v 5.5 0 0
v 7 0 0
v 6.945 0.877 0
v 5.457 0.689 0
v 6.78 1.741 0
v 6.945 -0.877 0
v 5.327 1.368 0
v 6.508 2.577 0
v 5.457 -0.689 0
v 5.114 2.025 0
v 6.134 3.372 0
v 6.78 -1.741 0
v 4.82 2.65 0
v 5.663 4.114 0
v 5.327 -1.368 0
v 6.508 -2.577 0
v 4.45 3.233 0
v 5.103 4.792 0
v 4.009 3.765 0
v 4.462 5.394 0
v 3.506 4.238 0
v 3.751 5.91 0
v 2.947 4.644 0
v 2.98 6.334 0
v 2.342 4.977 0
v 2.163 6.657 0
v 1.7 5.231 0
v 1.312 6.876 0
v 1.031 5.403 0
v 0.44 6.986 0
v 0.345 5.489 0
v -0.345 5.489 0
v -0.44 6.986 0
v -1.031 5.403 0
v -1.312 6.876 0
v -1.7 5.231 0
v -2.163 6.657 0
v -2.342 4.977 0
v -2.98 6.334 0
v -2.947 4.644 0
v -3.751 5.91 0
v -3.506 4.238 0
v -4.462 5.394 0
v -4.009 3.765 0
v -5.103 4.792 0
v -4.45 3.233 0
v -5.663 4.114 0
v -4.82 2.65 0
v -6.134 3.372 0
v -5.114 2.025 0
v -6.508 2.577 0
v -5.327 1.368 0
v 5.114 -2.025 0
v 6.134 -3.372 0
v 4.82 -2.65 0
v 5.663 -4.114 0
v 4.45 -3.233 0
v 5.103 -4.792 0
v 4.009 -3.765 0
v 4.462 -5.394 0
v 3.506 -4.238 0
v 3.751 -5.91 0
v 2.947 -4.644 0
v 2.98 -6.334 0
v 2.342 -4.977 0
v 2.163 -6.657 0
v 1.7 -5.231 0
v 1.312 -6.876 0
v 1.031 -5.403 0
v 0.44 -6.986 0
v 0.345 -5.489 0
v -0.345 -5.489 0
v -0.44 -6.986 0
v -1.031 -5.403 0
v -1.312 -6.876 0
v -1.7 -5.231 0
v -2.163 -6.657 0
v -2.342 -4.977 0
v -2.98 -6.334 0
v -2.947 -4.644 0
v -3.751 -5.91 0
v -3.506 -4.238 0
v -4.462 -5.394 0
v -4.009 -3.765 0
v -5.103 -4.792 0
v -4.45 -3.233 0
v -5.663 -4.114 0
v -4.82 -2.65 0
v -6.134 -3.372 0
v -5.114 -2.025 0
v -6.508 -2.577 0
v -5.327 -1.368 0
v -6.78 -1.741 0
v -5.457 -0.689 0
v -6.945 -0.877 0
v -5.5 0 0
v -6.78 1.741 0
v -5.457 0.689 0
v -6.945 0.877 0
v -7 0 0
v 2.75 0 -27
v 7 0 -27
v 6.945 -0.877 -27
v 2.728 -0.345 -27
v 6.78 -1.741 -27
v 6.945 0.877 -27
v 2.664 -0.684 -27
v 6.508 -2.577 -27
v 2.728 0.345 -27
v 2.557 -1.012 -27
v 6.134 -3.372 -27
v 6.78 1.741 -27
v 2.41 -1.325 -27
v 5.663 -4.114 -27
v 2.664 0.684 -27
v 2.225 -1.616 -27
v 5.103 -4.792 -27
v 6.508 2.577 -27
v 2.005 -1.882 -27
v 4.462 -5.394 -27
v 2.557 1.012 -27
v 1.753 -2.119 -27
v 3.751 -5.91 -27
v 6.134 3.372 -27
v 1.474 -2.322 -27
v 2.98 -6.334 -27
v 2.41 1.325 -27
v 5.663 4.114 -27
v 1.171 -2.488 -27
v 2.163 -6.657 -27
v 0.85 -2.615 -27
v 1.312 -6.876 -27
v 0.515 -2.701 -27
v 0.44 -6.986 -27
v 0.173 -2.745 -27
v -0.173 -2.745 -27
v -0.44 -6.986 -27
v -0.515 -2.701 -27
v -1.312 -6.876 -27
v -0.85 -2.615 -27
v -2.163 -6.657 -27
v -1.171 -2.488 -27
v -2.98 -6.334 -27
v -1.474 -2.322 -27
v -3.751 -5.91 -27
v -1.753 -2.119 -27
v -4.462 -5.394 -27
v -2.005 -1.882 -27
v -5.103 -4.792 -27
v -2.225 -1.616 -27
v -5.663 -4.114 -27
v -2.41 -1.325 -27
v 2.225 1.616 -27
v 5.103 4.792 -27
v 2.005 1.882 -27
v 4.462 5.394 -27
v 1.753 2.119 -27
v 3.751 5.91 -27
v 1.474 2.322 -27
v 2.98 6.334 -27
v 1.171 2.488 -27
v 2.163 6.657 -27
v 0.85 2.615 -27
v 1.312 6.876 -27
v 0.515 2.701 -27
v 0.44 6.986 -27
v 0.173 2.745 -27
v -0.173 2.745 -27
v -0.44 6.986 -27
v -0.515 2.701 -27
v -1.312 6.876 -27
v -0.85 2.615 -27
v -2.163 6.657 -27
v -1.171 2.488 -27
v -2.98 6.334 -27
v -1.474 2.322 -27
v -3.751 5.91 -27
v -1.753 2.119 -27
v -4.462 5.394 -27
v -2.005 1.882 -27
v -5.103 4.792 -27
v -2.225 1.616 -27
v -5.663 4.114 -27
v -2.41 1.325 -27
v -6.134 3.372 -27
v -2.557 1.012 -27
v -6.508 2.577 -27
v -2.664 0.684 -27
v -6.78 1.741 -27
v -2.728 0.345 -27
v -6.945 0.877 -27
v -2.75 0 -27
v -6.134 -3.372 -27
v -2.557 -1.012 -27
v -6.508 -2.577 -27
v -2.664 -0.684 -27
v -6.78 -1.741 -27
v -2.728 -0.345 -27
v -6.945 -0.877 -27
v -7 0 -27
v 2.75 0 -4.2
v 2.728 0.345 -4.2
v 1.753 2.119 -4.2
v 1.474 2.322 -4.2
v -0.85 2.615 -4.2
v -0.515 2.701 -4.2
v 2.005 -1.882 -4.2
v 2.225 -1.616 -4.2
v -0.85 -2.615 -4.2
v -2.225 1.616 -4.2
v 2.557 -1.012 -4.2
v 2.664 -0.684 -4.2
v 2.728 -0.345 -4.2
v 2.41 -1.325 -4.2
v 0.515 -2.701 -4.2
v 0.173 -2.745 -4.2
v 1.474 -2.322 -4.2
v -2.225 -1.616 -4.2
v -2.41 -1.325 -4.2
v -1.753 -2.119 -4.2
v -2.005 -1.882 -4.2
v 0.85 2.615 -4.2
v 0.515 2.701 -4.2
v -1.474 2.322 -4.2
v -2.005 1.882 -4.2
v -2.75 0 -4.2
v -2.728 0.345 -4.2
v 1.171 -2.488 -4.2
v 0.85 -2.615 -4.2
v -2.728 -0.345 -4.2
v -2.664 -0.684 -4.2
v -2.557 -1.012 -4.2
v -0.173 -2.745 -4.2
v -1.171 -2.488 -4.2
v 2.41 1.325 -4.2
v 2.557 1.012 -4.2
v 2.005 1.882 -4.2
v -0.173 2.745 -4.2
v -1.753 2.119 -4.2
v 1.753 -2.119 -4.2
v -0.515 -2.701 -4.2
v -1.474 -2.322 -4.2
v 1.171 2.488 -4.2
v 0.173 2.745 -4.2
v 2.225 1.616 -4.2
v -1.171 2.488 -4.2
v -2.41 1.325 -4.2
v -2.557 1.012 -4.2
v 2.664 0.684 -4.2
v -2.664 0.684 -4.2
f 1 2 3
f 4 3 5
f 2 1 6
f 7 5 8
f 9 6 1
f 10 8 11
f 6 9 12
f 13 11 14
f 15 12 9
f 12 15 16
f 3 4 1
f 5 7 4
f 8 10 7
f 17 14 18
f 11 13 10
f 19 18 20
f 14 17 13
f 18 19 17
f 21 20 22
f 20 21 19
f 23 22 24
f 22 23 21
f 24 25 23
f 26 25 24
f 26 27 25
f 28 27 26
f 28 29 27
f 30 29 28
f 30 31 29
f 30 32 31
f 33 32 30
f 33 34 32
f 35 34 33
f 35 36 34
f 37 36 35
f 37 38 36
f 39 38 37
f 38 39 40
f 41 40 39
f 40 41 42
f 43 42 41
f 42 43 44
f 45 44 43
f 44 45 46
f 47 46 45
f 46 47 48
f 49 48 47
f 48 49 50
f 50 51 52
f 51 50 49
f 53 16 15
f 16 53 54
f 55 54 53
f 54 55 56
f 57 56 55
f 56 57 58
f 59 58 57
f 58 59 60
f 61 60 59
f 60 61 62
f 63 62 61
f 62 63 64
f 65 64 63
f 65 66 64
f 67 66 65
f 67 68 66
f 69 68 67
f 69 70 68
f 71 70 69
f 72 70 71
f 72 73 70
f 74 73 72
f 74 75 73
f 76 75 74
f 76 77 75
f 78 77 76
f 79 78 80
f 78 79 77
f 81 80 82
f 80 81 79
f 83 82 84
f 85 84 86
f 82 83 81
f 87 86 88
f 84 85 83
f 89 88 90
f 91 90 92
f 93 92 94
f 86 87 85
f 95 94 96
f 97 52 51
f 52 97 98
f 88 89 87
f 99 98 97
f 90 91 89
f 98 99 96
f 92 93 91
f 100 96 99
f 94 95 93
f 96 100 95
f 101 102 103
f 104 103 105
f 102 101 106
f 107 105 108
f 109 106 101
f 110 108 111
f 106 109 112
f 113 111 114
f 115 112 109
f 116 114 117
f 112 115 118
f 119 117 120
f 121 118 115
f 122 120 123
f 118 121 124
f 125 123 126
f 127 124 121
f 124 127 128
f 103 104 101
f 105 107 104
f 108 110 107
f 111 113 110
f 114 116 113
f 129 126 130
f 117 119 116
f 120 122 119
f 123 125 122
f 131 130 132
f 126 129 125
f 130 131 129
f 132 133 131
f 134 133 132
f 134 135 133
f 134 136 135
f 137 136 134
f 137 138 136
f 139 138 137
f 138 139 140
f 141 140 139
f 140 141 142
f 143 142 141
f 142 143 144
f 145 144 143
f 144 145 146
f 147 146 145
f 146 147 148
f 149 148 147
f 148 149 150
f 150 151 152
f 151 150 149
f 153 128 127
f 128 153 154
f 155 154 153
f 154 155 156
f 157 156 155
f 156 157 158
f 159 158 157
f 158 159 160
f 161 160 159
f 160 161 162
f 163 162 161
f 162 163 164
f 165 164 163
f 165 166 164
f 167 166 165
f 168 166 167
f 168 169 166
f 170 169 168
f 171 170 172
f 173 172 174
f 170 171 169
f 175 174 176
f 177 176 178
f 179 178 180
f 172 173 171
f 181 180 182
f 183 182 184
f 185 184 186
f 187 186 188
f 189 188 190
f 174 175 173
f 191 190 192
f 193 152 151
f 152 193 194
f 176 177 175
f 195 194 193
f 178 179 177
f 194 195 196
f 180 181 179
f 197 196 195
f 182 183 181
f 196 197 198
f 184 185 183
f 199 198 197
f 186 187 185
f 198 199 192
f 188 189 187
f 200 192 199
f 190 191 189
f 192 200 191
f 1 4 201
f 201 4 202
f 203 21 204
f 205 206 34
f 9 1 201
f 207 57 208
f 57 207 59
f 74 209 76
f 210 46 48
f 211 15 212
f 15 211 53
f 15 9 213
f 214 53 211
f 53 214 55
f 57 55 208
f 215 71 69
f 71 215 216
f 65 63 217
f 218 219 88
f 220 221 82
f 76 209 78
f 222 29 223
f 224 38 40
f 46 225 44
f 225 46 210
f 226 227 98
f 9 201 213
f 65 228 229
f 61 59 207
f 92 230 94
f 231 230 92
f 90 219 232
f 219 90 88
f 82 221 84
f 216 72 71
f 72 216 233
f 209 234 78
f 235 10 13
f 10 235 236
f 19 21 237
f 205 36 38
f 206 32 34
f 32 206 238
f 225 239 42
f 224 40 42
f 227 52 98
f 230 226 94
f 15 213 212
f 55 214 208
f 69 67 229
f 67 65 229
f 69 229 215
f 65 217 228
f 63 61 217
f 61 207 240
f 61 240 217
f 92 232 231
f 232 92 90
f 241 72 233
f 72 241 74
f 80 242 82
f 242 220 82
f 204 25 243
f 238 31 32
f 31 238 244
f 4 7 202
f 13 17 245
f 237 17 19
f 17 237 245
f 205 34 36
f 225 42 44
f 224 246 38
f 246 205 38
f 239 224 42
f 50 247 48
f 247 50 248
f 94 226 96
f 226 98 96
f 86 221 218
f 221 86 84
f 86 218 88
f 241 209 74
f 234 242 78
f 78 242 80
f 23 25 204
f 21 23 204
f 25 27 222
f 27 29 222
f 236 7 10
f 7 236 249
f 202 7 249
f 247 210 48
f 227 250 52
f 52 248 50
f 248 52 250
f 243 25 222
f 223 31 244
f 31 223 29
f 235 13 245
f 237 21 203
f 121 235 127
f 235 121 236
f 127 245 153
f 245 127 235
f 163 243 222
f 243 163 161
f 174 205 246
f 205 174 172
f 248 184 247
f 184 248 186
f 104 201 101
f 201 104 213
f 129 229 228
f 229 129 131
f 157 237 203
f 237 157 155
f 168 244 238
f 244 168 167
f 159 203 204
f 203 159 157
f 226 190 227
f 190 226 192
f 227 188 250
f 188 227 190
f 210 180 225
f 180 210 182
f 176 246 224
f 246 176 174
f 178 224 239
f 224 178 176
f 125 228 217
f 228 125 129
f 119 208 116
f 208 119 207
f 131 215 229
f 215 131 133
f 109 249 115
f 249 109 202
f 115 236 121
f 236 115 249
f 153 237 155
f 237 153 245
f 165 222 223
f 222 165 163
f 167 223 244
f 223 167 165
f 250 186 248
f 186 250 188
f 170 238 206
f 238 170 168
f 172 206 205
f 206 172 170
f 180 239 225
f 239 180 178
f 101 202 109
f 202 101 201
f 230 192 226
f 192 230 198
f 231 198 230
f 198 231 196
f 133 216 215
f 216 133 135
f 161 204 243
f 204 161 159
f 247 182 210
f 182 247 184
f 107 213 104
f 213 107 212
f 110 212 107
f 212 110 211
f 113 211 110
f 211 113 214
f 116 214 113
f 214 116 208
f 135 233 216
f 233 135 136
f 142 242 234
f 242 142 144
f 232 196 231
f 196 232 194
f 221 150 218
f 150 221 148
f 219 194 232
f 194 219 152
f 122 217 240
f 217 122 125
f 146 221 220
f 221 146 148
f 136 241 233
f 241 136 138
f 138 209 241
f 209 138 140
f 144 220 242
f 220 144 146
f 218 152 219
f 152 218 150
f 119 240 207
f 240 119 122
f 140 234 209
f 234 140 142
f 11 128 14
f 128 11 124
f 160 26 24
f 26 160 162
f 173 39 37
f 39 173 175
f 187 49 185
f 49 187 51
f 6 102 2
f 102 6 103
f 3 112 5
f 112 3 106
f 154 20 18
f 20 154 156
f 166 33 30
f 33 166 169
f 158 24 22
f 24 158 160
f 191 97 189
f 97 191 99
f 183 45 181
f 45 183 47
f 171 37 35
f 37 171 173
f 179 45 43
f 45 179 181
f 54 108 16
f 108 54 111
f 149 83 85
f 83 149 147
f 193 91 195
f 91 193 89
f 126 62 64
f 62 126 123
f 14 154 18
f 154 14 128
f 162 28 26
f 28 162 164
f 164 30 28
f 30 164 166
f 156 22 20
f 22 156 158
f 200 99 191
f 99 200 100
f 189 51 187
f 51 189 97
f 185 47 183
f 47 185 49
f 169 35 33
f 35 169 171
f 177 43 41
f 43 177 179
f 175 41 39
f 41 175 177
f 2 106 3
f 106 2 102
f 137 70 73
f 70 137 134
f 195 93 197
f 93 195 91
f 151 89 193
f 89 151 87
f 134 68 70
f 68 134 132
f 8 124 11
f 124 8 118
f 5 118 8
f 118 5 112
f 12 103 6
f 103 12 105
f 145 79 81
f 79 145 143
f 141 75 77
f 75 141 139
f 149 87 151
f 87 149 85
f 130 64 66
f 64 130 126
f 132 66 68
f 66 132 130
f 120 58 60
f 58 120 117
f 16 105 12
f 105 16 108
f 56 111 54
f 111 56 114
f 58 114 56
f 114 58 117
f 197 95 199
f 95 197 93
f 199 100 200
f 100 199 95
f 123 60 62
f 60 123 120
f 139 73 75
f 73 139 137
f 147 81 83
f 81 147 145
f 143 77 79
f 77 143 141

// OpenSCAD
$fn = 50;


difference() {
	union() {
		translate(v = [0, 0, -27.0000000000]) {
			cylinder(h = 27, r = 7.0000000000);
		}
		cylinder(h = 0, r = 16.0000000000);
	}
	union() {
		translate(v = [0, 0, 0]) {
			rotate(a = [0, 0, 0]) {
				difference() {
					union() {
						#translate(v = [0, 0, -27.0000000000]) {
							cylinder(h = 27, r = 2.2500000000);
						}
						#translate(v = [0, 0, -4.2000000000]) {
							cylinder(h = 4.2000000000, r = 7.0000000000, r1 = 2.7500000000, r2 = 5.5000000000);
						}
						#translate(v = [0, 0, -27.0000000000]) {
							cylinder(h = 27, r = 2.7500000000);
						}
						#translate(v = [0, 0, -27.0000000000]) {
							cylinder(h = 27, r = 2.2500000000);
						}
					}
					union();
				}
			}
		}
	}
}
